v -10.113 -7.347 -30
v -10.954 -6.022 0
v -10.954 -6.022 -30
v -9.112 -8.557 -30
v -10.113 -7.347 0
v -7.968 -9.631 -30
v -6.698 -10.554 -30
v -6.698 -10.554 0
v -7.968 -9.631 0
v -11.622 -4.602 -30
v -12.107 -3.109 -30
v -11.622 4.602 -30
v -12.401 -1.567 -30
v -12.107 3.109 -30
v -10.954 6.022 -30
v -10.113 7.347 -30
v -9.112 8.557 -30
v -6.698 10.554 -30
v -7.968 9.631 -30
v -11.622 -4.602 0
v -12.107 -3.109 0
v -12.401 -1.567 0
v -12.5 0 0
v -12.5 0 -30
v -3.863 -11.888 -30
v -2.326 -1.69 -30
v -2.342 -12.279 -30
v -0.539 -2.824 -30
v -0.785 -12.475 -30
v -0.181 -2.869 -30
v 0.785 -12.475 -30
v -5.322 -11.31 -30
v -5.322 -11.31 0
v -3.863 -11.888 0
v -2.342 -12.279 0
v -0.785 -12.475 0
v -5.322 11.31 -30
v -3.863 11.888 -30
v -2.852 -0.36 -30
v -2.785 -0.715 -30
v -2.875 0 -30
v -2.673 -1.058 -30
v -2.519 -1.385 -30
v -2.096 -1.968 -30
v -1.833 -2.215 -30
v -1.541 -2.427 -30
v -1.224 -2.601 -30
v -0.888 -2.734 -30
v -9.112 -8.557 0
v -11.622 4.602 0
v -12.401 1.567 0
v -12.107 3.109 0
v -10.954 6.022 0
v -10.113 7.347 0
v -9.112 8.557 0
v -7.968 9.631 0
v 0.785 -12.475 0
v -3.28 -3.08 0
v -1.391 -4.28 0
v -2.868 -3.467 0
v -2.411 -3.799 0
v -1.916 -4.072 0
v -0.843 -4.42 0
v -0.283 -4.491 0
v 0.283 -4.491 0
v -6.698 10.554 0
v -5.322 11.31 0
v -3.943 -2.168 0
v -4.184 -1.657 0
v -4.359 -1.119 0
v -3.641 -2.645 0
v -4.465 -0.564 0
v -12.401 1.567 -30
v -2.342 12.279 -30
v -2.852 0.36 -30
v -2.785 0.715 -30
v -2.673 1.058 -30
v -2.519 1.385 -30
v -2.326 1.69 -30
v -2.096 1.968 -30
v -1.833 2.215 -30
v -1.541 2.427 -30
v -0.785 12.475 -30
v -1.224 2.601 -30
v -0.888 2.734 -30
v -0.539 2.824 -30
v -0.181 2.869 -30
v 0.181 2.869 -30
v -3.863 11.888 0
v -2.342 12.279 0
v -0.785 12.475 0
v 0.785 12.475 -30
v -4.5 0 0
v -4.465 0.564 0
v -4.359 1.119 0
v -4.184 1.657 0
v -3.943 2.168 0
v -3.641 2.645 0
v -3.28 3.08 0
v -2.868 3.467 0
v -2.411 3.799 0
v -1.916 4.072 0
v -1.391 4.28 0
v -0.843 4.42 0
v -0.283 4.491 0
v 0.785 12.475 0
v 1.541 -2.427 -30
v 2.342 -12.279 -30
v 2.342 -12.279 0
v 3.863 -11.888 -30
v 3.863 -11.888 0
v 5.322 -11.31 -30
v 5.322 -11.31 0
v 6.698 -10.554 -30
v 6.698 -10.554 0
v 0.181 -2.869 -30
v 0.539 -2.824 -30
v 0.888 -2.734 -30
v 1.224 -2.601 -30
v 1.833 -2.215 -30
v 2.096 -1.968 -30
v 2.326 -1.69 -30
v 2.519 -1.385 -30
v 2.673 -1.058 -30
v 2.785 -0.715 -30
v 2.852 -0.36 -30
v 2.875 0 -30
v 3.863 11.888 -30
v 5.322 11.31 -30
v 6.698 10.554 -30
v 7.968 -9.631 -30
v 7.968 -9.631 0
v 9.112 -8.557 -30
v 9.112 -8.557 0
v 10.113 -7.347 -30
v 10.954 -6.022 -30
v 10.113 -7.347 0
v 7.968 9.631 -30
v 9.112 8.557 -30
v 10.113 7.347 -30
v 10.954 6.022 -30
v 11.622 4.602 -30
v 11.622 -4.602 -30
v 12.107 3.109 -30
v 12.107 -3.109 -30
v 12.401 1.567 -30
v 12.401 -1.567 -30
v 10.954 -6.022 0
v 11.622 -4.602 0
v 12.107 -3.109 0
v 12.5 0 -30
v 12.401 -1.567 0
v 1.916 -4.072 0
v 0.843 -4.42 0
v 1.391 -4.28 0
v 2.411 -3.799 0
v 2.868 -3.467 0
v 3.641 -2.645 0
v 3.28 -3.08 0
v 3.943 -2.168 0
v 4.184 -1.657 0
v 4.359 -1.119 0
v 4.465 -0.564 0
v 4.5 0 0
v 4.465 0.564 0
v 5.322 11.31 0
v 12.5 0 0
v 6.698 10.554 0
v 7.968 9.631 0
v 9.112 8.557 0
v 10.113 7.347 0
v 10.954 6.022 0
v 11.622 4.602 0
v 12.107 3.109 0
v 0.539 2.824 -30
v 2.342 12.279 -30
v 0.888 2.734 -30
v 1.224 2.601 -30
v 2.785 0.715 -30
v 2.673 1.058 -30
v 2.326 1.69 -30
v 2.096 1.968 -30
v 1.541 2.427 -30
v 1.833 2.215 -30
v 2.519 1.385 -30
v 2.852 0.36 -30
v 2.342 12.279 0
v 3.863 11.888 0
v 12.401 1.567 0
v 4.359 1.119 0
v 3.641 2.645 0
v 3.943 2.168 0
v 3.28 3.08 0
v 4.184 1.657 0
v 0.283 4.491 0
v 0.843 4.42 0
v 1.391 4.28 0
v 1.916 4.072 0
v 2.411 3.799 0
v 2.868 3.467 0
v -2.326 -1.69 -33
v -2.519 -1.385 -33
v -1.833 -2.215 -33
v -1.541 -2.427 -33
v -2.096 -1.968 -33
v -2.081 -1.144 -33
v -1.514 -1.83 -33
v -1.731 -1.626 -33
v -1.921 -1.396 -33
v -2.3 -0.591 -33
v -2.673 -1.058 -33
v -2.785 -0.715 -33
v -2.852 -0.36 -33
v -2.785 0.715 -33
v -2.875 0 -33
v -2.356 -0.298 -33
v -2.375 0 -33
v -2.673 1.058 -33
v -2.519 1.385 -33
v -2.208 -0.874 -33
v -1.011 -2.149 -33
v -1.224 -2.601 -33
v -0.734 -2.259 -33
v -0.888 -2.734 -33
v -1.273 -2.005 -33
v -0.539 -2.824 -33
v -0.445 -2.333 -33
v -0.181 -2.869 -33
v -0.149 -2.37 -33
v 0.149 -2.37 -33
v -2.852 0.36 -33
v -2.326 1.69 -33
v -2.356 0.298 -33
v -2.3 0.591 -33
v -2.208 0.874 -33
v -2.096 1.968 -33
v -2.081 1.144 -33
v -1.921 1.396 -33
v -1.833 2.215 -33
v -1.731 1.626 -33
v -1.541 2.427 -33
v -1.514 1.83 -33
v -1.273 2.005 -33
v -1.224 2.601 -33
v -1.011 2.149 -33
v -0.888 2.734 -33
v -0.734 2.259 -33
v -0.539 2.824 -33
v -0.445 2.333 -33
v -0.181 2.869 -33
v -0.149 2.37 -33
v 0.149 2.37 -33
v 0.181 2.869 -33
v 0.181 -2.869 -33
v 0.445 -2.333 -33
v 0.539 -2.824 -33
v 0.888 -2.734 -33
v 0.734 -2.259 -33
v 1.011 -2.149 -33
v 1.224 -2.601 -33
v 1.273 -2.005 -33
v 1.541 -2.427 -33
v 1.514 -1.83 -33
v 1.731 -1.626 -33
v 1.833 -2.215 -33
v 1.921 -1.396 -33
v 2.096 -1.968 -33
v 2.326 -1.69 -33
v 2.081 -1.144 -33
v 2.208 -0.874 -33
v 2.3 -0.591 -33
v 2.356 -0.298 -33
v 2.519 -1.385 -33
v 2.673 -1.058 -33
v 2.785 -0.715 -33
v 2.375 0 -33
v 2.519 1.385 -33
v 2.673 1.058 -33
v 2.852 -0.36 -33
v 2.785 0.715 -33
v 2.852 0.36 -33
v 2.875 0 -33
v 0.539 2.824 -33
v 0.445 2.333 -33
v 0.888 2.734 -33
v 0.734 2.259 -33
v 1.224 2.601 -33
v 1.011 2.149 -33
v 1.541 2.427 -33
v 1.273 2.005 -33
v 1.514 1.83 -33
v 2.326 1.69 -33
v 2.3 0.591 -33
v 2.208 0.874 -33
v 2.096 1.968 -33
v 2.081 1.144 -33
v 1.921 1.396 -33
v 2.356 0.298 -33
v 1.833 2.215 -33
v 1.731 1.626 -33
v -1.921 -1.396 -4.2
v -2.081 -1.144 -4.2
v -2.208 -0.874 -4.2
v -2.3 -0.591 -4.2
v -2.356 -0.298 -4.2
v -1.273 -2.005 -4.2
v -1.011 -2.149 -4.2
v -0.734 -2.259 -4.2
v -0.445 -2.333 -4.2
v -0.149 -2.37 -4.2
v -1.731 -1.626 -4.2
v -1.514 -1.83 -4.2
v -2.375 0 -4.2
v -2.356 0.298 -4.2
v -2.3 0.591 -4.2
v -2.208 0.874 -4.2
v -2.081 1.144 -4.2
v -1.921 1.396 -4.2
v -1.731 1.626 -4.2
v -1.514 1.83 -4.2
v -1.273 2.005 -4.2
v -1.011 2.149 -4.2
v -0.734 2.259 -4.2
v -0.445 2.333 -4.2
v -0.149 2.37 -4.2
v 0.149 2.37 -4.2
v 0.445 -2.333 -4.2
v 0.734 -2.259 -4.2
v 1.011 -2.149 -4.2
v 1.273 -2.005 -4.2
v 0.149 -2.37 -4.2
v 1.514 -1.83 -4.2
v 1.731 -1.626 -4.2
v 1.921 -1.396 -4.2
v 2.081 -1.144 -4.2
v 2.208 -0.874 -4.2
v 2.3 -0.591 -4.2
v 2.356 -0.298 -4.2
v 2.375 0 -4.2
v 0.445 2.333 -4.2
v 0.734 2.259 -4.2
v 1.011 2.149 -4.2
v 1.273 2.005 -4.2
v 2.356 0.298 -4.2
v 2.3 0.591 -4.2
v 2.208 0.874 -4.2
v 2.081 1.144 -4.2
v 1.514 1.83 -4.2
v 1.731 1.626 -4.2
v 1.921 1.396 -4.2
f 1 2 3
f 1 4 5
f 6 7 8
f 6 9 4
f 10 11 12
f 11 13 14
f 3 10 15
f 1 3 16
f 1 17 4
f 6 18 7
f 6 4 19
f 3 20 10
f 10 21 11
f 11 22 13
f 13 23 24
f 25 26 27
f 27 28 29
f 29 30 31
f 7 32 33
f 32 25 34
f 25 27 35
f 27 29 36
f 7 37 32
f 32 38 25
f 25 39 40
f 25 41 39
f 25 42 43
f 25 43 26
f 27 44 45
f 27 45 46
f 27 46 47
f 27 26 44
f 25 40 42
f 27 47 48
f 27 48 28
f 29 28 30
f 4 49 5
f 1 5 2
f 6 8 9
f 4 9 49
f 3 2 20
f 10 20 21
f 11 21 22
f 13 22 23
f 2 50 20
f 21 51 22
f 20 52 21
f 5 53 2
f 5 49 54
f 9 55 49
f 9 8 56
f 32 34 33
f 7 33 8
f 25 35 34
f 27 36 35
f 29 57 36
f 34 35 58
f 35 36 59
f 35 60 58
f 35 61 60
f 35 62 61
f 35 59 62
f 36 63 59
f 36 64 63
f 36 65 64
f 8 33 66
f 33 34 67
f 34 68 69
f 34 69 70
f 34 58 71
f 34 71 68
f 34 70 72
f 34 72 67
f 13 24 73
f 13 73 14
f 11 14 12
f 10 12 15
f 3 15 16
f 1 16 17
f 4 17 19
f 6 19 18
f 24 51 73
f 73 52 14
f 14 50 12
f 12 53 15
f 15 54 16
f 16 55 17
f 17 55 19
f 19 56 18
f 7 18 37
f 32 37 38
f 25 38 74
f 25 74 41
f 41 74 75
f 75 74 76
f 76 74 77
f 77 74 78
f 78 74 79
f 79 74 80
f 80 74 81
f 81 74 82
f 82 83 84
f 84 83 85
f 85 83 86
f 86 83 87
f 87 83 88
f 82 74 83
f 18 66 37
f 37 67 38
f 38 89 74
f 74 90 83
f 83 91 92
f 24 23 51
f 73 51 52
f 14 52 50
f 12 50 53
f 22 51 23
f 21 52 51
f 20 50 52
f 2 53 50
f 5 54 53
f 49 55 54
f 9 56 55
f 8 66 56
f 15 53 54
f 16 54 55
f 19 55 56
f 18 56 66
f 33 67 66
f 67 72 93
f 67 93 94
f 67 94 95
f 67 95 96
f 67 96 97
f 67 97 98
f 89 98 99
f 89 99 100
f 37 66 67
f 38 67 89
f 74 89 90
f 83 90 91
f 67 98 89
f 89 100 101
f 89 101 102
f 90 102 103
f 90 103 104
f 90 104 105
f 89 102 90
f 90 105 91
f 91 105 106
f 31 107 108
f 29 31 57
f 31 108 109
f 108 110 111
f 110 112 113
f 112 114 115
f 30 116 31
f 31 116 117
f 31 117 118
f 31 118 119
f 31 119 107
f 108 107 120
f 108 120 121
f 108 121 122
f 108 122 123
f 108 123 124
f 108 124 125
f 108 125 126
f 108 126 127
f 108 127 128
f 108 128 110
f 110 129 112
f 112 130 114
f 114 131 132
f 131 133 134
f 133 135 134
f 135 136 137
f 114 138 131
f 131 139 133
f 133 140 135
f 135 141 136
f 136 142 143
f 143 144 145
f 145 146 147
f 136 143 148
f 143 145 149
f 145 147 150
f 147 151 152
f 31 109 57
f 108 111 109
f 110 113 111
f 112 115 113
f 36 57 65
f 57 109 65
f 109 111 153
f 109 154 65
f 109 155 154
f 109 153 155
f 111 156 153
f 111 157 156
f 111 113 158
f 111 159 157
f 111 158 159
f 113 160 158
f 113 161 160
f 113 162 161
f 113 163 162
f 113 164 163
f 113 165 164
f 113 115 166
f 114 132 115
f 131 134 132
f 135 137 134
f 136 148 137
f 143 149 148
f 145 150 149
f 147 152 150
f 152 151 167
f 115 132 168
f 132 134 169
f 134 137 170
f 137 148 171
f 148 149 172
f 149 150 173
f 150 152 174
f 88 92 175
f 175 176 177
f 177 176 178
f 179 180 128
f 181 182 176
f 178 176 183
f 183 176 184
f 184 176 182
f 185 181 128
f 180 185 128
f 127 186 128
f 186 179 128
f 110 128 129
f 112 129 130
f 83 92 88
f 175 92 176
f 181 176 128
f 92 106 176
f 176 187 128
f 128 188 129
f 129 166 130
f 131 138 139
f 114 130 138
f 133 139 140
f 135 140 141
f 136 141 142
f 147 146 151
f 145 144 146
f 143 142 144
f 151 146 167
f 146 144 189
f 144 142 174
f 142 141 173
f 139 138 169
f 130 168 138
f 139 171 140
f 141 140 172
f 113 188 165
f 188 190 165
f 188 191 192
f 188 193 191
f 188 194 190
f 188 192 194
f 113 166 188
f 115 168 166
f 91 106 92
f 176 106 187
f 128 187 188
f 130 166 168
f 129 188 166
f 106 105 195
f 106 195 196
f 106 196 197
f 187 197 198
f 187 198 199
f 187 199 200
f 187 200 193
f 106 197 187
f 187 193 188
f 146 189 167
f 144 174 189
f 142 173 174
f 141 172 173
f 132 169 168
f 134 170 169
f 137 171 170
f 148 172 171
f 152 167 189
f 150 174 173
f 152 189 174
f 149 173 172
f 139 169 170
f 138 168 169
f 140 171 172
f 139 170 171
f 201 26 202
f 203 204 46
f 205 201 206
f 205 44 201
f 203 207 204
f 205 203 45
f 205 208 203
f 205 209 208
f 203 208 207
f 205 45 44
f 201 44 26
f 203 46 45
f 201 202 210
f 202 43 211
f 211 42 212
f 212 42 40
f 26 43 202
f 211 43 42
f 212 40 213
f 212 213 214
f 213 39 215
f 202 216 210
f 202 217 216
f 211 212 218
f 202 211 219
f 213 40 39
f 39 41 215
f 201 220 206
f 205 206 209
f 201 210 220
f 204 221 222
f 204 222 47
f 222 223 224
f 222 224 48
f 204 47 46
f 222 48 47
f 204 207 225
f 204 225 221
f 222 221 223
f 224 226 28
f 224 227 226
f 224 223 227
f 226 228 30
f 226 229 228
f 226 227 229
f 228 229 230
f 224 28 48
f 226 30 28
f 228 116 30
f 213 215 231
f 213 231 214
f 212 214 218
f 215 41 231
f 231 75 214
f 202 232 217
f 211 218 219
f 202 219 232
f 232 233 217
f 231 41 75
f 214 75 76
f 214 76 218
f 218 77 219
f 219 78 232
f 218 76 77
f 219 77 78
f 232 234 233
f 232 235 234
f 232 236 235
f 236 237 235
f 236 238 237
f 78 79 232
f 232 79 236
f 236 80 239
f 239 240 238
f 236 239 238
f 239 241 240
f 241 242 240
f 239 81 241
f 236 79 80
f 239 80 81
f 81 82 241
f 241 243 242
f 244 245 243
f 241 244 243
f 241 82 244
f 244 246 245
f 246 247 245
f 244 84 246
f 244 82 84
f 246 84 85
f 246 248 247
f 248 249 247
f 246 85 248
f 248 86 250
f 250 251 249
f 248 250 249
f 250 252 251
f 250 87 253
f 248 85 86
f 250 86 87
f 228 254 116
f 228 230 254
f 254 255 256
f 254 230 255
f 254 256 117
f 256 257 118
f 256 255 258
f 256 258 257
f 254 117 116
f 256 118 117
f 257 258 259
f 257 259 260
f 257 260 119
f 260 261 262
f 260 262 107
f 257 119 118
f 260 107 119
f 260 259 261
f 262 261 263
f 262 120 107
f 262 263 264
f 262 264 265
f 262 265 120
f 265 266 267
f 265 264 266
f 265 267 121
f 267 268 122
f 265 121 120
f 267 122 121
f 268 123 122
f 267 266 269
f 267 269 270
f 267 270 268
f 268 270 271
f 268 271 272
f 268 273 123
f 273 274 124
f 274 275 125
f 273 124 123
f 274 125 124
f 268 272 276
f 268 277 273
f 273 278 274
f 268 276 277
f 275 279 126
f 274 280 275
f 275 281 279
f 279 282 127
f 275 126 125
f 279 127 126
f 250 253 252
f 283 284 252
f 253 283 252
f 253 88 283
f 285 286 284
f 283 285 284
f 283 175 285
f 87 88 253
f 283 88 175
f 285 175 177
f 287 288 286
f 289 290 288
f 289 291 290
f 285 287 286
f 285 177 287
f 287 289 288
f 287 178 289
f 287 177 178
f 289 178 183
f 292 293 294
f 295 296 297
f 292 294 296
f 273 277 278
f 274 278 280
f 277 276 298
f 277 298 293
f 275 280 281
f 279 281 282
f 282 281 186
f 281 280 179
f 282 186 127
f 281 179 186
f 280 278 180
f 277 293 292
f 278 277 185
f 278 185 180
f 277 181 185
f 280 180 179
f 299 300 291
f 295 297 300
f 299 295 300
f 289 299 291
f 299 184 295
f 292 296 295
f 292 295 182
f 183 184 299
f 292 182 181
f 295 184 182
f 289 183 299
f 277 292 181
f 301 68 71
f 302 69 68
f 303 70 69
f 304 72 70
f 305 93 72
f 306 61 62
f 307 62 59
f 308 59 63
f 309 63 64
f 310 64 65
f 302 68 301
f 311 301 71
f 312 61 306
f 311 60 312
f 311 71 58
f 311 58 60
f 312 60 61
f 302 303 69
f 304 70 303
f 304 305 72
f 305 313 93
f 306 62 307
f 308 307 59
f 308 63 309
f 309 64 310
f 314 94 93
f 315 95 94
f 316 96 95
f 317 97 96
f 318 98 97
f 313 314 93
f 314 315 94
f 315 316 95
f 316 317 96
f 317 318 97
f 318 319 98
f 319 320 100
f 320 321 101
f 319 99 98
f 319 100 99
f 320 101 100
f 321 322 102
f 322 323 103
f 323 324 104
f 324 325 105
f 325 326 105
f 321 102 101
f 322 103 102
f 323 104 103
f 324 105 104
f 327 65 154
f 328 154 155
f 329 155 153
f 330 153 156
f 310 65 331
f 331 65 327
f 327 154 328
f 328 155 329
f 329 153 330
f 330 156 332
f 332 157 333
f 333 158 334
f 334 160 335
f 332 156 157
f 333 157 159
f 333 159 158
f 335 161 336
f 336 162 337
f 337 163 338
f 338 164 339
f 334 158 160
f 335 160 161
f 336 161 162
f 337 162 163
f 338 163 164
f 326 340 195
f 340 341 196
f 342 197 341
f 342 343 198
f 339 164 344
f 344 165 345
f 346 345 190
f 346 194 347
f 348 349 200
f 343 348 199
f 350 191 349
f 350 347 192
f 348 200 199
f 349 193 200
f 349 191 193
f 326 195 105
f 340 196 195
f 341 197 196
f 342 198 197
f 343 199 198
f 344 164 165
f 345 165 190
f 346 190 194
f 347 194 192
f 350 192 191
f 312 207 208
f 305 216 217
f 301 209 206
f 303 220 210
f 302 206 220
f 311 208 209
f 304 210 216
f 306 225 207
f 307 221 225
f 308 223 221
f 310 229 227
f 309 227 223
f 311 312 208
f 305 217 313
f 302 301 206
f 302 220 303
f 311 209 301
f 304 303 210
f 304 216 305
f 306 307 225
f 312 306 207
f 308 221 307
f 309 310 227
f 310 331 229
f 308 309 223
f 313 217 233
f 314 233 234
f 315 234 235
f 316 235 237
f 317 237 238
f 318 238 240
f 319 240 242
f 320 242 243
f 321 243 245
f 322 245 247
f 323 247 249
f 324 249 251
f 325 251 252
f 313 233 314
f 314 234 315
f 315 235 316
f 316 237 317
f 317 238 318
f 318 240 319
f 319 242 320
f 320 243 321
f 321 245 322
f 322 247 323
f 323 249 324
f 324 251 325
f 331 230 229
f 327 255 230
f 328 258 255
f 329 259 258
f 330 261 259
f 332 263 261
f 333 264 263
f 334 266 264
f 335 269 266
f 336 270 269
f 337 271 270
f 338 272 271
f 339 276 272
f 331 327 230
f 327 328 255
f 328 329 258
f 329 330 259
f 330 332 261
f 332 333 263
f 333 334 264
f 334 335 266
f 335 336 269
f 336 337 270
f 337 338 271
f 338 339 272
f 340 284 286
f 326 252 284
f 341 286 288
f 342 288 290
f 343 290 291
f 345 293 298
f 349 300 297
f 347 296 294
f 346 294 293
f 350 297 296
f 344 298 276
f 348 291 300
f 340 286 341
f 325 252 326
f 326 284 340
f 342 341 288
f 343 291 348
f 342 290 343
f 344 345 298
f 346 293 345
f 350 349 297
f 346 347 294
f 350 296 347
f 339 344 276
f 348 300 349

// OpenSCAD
$fn = 50;

difference() {
	union() {
		translate(v = [0, 0, -30.0]) {
			cylinder(h = 30, r = 12.5);
		}
		#translate(v = [0, 0, -33.0]) {
			cylinder(h = 33, r = 2.875);
		}
	}
	union() {
		translate(v = [0, 0, 0]) {
			rotate(a = [0, 0, 0]) {
				difference() {
					union() {
						translate(v = [0, 0, -33.0]) {
							cylinder(h = 33, r = 2.25);
						}
						translate(v = [0, 0, -4.2]) {
							cylinder(h = 4.2, r1 = 2.375, r2 = 4.5);
						}
						translate(v = [0, 0, -33.0]) {
							cylinder(h = 33, r = 2.375);
						}
						translate(v = [0, 0, -33.0]) {
							cylinder(h = 33, r = 2.25);
						}
					}
					union();
				}
			}
		}
	}
}
